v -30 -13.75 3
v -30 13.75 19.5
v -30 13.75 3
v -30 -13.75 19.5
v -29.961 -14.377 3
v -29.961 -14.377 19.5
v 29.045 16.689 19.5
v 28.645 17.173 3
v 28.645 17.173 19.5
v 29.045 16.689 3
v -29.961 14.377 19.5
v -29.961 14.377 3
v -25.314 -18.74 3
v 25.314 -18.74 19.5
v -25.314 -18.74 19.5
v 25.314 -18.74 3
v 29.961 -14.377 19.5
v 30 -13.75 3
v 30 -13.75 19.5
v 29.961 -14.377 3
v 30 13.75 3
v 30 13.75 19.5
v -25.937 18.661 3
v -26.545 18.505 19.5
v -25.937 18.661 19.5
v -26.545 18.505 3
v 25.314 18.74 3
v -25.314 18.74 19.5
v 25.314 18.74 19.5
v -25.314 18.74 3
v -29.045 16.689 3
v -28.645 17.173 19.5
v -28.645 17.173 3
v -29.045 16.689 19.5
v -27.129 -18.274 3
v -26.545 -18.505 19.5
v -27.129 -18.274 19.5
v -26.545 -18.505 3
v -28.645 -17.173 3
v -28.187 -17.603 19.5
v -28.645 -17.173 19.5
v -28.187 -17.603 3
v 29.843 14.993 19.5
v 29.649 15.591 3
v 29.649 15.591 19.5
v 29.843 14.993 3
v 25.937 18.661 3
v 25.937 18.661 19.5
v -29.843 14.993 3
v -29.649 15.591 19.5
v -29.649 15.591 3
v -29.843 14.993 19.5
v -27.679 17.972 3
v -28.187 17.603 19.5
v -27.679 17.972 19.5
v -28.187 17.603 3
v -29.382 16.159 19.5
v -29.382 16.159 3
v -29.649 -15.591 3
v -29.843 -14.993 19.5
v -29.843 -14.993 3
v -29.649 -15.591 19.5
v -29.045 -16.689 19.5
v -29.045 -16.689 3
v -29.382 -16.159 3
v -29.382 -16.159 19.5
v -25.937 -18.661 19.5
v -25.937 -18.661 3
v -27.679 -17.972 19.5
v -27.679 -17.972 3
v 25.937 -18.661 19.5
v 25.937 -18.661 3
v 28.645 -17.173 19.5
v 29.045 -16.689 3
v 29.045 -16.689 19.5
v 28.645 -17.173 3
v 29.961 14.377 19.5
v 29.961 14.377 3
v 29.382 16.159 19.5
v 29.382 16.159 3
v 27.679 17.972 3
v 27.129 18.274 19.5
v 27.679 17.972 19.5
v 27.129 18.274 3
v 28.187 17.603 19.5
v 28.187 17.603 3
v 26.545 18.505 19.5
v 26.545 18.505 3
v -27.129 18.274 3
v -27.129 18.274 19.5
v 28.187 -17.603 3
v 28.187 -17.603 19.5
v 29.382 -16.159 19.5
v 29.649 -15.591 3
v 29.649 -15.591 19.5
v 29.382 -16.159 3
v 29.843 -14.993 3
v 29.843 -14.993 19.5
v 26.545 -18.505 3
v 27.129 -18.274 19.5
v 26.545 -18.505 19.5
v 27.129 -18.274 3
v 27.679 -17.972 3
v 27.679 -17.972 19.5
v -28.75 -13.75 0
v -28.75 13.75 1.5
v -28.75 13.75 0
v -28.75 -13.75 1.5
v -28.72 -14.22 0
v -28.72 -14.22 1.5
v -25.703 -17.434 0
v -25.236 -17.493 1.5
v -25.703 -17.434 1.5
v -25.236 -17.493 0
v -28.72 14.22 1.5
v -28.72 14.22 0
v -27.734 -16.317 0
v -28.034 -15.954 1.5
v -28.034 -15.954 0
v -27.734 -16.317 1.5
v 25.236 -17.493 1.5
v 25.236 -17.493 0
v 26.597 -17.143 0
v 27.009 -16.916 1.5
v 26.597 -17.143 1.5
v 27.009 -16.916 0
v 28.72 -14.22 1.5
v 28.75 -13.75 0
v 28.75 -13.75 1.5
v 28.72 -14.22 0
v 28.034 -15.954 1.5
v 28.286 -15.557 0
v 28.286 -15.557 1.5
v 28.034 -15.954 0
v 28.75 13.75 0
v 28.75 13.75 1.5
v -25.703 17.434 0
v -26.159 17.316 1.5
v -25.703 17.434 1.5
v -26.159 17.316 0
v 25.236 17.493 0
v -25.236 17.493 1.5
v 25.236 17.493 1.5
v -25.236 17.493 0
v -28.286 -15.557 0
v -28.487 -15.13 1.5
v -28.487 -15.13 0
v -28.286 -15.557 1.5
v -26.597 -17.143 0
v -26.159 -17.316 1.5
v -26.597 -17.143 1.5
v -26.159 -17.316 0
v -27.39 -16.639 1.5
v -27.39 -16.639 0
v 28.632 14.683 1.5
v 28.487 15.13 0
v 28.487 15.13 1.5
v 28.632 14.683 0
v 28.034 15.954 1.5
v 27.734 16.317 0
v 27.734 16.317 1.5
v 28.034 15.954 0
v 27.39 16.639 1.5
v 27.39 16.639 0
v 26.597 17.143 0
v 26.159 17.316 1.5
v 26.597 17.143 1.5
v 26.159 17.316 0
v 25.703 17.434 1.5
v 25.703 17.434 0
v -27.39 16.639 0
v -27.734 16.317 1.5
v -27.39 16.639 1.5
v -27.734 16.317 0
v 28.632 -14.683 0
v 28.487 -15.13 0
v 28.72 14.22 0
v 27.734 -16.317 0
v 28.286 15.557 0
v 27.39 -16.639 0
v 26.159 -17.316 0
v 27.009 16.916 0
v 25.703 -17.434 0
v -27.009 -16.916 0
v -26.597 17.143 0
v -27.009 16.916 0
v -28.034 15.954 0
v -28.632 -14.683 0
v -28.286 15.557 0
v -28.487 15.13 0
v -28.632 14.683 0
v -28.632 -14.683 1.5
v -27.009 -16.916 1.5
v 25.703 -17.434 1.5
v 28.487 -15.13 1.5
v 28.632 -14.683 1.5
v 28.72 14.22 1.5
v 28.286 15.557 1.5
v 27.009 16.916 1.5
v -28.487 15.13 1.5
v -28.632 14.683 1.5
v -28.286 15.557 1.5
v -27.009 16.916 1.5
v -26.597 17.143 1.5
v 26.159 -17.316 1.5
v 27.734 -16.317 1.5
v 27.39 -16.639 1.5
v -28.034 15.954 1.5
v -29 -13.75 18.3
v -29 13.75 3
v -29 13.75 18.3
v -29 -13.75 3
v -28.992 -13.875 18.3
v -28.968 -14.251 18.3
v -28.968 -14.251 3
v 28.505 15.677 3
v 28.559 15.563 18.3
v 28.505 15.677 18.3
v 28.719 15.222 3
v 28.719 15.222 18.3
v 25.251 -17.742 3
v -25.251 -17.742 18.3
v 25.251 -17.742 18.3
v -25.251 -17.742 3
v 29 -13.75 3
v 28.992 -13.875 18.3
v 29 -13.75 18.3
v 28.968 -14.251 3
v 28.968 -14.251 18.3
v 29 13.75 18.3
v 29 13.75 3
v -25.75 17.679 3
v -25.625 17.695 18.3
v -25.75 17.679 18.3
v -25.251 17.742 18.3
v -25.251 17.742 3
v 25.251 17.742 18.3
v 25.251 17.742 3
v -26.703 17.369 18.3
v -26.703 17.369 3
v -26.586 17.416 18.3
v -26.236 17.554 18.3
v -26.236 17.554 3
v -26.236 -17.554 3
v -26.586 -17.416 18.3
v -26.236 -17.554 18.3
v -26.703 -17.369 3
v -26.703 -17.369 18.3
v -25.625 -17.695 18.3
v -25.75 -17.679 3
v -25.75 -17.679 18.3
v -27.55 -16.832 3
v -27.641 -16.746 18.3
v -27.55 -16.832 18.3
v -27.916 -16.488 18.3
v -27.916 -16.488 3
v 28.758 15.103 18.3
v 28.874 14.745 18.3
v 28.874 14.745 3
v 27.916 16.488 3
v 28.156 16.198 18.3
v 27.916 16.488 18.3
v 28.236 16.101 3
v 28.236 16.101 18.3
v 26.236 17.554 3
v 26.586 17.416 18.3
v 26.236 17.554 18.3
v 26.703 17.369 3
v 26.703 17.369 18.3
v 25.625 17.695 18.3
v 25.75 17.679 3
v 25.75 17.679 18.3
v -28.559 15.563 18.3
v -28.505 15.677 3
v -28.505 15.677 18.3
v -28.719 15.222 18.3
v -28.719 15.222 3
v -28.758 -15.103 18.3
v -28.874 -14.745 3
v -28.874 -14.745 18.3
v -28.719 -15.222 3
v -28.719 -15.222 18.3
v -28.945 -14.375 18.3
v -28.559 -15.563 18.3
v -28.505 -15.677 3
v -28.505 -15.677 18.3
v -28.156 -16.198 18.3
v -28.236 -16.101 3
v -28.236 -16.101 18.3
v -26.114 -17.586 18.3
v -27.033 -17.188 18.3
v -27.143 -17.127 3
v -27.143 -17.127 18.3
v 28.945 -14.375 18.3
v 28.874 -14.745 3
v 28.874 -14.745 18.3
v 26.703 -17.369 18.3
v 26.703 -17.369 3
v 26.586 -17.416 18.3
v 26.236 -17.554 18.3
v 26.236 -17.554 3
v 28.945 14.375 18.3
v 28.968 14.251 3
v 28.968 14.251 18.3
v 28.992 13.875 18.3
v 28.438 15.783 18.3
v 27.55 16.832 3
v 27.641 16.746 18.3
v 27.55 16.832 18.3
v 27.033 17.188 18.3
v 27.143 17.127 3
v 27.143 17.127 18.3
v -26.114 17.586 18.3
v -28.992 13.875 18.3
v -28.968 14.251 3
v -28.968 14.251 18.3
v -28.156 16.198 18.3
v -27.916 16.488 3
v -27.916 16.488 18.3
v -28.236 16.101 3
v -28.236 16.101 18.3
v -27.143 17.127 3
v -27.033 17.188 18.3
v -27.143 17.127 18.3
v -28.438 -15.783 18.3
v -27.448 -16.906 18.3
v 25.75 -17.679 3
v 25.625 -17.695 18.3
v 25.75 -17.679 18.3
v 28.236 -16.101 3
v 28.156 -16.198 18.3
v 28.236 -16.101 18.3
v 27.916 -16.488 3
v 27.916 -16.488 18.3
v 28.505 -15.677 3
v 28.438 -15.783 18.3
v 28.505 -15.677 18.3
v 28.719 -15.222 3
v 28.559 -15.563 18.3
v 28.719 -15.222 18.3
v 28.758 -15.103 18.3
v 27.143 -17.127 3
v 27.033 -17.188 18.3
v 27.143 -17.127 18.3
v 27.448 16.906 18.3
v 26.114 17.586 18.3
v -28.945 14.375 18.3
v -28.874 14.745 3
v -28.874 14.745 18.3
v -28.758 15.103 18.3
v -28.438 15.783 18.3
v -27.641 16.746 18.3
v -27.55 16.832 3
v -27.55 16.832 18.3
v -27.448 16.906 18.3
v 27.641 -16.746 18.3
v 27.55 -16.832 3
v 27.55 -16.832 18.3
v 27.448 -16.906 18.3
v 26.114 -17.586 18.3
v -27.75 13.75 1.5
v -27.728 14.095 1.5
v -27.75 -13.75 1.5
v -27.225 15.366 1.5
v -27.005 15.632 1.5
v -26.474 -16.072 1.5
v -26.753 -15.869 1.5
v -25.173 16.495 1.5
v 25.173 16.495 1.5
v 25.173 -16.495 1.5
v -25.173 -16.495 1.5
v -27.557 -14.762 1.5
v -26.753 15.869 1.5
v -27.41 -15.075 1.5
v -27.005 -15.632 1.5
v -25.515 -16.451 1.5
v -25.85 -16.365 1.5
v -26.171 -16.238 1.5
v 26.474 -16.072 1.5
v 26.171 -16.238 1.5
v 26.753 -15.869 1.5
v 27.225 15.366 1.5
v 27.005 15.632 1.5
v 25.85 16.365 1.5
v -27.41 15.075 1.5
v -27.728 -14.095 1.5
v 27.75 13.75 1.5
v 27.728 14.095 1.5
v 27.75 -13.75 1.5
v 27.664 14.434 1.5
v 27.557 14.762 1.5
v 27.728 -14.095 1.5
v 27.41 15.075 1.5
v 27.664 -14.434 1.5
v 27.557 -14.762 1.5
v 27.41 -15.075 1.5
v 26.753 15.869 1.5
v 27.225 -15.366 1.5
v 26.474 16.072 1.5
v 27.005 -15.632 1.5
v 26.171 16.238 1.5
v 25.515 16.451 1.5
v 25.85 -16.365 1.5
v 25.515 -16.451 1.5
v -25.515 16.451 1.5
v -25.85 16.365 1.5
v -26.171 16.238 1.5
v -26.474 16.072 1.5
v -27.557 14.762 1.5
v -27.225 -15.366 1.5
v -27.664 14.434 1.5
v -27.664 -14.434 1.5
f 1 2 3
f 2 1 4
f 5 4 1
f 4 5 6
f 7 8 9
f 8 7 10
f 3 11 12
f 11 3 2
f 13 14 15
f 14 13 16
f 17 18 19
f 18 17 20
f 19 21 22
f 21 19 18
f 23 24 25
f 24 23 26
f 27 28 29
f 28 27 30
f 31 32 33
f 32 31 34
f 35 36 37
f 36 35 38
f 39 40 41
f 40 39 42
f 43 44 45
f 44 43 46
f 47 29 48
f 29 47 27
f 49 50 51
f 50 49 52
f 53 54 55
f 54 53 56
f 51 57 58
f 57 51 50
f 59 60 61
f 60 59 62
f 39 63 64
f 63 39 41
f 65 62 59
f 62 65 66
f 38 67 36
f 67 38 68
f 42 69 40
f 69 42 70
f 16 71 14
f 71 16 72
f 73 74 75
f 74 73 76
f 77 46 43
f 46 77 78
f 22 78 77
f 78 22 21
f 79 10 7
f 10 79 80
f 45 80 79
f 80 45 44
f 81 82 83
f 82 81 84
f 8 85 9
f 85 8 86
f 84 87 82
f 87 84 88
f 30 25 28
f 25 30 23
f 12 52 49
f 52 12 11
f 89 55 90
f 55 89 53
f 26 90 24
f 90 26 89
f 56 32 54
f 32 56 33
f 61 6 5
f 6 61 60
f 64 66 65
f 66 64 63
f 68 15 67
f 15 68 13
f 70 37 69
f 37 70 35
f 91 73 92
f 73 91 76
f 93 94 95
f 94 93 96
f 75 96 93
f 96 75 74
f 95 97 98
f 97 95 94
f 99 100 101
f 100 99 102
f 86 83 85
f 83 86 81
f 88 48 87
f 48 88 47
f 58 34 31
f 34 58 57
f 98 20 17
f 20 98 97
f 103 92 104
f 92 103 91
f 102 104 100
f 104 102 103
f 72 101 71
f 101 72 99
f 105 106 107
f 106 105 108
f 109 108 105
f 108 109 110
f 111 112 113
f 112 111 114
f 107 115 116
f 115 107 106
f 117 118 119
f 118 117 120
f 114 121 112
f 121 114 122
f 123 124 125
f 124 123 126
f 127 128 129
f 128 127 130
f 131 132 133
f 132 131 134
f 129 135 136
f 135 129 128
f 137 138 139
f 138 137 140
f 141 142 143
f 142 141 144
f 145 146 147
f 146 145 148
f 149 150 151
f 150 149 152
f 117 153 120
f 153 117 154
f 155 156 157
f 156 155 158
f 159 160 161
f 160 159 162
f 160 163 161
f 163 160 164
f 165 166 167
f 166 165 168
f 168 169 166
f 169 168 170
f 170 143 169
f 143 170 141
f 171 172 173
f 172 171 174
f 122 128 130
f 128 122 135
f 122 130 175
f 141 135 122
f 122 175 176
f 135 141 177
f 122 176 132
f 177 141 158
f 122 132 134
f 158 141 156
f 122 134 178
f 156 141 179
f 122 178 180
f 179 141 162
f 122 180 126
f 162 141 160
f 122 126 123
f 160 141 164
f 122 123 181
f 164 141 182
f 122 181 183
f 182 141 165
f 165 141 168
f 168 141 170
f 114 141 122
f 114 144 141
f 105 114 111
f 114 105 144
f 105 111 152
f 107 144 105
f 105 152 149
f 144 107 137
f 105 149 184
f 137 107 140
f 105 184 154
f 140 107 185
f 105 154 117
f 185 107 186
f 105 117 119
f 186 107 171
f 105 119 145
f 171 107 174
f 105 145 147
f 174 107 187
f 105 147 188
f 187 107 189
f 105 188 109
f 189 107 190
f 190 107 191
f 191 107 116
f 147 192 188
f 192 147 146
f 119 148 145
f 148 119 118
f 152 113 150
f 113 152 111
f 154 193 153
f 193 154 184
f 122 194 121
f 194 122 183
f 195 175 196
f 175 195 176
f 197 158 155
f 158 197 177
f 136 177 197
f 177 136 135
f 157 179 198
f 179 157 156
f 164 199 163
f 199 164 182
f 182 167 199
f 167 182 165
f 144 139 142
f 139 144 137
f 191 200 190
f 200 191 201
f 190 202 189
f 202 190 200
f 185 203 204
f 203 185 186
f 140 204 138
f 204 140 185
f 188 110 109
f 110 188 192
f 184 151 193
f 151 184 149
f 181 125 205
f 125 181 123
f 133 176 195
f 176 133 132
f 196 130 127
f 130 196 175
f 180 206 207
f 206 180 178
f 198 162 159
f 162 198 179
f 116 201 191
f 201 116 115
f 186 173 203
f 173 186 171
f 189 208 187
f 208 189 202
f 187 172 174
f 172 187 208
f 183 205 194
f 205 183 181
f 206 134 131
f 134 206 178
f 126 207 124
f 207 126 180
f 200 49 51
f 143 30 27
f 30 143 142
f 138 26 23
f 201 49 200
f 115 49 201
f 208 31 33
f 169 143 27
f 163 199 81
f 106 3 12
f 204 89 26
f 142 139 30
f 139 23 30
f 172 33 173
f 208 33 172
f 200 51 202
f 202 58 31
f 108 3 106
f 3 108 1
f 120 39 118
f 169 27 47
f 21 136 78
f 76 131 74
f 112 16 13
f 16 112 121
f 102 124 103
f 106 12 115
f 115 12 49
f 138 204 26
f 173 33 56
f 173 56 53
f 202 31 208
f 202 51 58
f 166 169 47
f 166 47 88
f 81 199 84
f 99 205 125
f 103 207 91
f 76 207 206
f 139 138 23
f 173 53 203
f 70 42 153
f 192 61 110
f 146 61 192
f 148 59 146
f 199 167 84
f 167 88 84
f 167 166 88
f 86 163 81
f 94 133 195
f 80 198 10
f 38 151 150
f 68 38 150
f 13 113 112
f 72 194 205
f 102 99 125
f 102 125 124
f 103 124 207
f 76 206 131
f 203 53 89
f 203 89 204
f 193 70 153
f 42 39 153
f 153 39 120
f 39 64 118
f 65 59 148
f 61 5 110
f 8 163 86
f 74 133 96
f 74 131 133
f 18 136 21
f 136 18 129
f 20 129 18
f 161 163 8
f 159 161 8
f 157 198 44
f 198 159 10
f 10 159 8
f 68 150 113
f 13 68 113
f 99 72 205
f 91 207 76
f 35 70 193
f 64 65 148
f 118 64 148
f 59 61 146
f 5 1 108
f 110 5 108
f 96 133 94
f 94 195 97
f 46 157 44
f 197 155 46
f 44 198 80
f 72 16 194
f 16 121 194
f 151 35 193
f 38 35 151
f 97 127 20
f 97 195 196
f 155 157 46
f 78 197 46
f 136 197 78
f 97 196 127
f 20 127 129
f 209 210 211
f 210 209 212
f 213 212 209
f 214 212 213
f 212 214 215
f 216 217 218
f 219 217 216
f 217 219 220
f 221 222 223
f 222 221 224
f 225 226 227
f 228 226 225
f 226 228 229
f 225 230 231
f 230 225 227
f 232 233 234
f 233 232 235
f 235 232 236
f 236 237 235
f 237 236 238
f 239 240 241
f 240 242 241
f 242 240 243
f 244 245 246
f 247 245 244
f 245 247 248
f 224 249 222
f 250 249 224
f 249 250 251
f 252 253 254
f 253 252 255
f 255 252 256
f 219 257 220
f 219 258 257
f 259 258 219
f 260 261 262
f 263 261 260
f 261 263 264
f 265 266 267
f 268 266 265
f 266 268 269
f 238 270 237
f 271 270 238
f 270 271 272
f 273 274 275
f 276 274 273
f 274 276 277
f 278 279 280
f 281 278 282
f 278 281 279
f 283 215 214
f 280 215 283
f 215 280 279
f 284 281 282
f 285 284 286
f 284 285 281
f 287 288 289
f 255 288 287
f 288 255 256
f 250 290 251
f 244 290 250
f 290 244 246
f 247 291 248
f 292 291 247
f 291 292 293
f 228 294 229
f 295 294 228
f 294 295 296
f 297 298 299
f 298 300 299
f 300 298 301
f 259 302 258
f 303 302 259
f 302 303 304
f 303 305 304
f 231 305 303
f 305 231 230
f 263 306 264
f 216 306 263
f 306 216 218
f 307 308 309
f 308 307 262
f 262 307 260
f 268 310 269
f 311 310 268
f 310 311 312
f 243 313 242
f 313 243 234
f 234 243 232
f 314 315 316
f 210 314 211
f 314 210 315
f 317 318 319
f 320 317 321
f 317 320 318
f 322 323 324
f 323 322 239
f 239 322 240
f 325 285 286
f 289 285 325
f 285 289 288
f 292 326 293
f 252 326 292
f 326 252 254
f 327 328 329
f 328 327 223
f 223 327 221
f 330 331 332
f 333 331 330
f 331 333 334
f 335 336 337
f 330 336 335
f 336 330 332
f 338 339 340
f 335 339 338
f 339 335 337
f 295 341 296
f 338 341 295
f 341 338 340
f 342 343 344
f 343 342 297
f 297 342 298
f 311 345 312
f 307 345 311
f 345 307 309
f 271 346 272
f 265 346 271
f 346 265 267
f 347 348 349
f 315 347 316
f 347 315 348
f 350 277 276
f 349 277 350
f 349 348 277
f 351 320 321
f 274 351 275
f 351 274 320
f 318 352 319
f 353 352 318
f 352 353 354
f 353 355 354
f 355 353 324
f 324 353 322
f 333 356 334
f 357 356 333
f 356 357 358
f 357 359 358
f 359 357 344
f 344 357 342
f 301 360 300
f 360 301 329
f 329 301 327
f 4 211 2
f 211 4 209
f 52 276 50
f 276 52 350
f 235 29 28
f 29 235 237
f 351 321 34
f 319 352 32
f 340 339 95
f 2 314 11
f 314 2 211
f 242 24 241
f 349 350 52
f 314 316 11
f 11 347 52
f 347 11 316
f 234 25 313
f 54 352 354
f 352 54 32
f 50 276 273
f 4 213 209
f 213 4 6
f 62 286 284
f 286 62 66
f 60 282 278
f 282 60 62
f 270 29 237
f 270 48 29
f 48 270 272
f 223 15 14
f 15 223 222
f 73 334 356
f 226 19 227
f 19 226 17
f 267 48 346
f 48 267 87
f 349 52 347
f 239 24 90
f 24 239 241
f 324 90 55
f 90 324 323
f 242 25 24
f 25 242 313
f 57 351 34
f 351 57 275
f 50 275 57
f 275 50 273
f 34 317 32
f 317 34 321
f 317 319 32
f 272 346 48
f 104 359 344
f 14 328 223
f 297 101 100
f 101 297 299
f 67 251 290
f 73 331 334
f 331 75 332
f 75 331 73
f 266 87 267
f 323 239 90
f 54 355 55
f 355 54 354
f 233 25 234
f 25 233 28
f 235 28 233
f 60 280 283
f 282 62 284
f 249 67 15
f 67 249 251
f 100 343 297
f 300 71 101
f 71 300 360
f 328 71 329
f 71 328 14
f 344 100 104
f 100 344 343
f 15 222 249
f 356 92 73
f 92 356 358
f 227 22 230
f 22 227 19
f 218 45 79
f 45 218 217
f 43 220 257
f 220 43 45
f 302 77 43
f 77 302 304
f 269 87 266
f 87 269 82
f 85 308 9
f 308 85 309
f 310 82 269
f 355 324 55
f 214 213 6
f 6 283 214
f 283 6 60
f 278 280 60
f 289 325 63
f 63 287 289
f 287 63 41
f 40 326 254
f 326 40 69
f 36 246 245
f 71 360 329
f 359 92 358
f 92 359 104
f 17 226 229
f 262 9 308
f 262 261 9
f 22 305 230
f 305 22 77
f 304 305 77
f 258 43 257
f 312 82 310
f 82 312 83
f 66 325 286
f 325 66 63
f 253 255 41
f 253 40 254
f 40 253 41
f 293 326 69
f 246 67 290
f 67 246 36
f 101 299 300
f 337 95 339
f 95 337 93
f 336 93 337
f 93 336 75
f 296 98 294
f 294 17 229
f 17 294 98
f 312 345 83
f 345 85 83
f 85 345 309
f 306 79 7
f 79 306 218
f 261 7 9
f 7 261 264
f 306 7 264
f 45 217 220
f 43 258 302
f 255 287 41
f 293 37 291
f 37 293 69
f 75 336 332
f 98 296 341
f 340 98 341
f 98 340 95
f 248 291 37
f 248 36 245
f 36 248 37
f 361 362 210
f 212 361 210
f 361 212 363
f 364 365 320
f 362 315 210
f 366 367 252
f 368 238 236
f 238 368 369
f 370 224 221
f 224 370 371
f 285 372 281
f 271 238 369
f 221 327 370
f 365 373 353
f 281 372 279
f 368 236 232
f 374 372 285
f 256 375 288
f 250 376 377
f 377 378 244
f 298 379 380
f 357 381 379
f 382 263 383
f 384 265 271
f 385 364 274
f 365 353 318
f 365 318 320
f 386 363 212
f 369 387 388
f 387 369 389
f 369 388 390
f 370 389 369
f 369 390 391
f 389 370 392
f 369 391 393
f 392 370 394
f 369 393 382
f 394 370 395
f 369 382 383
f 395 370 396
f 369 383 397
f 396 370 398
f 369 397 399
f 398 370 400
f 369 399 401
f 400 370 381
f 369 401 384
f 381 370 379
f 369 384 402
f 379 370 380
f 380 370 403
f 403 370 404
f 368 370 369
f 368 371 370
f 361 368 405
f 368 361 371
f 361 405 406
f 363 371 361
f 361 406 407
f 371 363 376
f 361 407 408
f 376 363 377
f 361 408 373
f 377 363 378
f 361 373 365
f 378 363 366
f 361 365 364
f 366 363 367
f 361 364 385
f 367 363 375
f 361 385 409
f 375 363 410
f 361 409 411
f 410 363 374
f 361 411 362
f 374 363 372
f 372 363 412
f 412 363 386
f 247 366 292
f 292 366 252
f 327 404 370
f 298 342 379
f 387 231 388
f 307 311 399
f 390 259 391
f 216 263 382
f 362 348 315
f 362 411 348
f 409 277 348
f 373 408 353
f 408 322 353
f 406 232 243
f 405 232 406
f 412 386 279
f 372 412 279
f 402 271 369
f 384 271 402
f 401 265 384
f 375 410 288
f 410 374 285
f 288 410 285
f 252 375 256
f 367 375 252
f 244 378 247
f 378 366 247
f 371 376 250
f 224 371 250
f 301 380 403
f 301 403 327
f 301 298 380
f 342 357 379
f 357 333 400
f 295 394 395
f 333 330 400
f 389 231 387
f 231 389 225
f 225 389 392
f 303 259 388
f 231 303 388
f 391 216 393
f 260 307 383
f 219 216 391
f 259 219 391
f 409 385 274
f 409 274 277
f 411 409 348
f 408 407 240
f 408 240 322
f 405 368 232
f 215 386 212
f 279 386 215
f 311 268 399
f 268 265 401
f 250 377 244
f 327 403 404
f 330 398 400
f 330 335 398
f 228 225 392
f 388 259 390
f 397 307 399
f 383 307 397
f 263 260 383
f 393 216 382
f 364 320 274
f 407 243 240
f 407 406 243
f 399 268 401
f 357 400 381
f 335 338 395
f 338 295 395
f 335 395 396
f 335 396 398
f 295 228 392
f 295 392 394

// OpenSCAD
$fn = 50;


difference() {
	union() {
		translate(v = [0, 0, 3.0000000000]) {
			hull() {
				translate(v = [-25.0000000000, 13.7500000000, 0]) {
					cylinder(h = 16.5000000000, r = 5);
				}
				translate(v = [25.0000000000, 13.7500000000, 0]) {
					cylinder(h = 16.5000000000, r = 5);
				}
				translate(v = [-25.0000000000, -13.7500000000, 0]) {
					cylinder(h = 16.5000000000, r = 5);
				}
				translate(v = [25.0000000000, -13.7500000000, 0]) {
					cylinder(h = 16.5000000000, r = 5);
				}
			}
		}
		hull() {
			translate(v = [-25.0000000000, 13.7500000000, 0]) {
				cylinder(h = 1.5000000000, r = 3.7500000000);
			}
			translate(v = [25.0000000000, 13.7500000000, 0]) {
				cylinder(h = 1.5000000000, r = 3.7500000000);
			}
			translate(v = [-25.0000000000, -13.7500000000, 0]) {
				cylinder(h = 1.5000000000, r = 3.7500000000);
			}
			translate(v = [25.0000000000, -13.7500000000, 0]) {
				cylinder(h = 1.5000000000, r = 3.7500000000);
			}
		}
		translate(v = [0, 0, 1.5000000000]) {
			hull() {
				translate(v = [-25.0000000000, 13.7500000000, 0]) {
					cylinder(h = 1.5000000000, r1 = 3.7500000000, r2 = 5.0000000000);
				}
				translate(v = [25.0000000000, 13.7500000000, 0]) {
					cylinder(h = 1.5000000000, r1 = 3.7500000000, r2 = 5.0000000000);
				}
				translate(v = [-25.0000000000, -13.7500000000, 0]) {
					cylinder(h = 1.5000000000, r1 = 3.7500000000, r2 = 5.0000000000);
				}
				translate(v = [25.0000000000, -13.7500000000, 0]) {
					cylinder(h = 1.5000000000, r1 = 3.7500000000, r2 = 5.0000000000);
				}
			}
		}
	}
	union() {
		translate(v = [0, 0, 3.0000000000]) {
			#hull() {
				translate(v = [-25.0000000000, 13.7500000000, 0]) {
					cylinder(h = 16.5000000000, r = 4);
				}
				translate(v = [25.0000000000, 13.7500000000, 0]) {
					cylinder(h = 16.5000000000, r = 4);
				}
				translate(v = [-25.0000000000, -13.7500000000, 0]) {
					cylinder(h = 16.5000000000, r = 4);
				}
				translate(v = [25.0000000000, -13.7500000000, 0]) {
					cylinder(h = 16.5000000000, r = 4);
				}
			}
		}
		translate(v = [0, 0, 18]) {
			hull() {
				translate(v = [-25.0000000000, 13.7500000000, 0]) {
					cylinder(h = 1.5000000000, r1 = 3.7500000000, r2 = 5.0000000000);
				}
				translate(v = [25.0000000000, 13.7500000000, 0]) {
					cylinder(h = 1.5000000000, r1 = 3.7500000000, r2 = 5.0000000000);
				}
				translate(v = [-25.0000000000, -13.7500000000, 0]) {
					cylinder(h = 1.5000000000, r1 = 3.7500000000, r2 = 5.0000000000);
				}
				translate(v = [25.0000000000, -13.7500000000, 0]) {
					cylinder(h = 1.5000000000, r1 = 3.7500000000, r2 = 5.0000000000);
				}
			}
		}
		translate(v = [0, 0, 1.5000000000]) {
			#hull() {
				translate(v = [-25.0000000000, 13.7500000000, 0]) {
					cylinder(h = 1.5000000000, r1 = 2.7500000000, r2 = 4.0000000000);
				}
				translate(v = [25.0000000000, 13.7500000000, 0]) {
					cylinder(h = 1.5000000000, r1 = 2.7500000000, r2 = 4.0000000000);
				}
				translate(v = [-25.0000000000, -13.7500000000, 0]) {
					cylinder(h = 1.5000000000, r1 = 2.7500000000, r2 = 4.0000000000);
				}
				translate(v = [25.0000000000, -13.7500000000, 0]) {
					cylinder(h = 1.5000000000, r1 = 2.7500000000, r2 = 4.0000000000);
				}
			}
		}
	}
}
